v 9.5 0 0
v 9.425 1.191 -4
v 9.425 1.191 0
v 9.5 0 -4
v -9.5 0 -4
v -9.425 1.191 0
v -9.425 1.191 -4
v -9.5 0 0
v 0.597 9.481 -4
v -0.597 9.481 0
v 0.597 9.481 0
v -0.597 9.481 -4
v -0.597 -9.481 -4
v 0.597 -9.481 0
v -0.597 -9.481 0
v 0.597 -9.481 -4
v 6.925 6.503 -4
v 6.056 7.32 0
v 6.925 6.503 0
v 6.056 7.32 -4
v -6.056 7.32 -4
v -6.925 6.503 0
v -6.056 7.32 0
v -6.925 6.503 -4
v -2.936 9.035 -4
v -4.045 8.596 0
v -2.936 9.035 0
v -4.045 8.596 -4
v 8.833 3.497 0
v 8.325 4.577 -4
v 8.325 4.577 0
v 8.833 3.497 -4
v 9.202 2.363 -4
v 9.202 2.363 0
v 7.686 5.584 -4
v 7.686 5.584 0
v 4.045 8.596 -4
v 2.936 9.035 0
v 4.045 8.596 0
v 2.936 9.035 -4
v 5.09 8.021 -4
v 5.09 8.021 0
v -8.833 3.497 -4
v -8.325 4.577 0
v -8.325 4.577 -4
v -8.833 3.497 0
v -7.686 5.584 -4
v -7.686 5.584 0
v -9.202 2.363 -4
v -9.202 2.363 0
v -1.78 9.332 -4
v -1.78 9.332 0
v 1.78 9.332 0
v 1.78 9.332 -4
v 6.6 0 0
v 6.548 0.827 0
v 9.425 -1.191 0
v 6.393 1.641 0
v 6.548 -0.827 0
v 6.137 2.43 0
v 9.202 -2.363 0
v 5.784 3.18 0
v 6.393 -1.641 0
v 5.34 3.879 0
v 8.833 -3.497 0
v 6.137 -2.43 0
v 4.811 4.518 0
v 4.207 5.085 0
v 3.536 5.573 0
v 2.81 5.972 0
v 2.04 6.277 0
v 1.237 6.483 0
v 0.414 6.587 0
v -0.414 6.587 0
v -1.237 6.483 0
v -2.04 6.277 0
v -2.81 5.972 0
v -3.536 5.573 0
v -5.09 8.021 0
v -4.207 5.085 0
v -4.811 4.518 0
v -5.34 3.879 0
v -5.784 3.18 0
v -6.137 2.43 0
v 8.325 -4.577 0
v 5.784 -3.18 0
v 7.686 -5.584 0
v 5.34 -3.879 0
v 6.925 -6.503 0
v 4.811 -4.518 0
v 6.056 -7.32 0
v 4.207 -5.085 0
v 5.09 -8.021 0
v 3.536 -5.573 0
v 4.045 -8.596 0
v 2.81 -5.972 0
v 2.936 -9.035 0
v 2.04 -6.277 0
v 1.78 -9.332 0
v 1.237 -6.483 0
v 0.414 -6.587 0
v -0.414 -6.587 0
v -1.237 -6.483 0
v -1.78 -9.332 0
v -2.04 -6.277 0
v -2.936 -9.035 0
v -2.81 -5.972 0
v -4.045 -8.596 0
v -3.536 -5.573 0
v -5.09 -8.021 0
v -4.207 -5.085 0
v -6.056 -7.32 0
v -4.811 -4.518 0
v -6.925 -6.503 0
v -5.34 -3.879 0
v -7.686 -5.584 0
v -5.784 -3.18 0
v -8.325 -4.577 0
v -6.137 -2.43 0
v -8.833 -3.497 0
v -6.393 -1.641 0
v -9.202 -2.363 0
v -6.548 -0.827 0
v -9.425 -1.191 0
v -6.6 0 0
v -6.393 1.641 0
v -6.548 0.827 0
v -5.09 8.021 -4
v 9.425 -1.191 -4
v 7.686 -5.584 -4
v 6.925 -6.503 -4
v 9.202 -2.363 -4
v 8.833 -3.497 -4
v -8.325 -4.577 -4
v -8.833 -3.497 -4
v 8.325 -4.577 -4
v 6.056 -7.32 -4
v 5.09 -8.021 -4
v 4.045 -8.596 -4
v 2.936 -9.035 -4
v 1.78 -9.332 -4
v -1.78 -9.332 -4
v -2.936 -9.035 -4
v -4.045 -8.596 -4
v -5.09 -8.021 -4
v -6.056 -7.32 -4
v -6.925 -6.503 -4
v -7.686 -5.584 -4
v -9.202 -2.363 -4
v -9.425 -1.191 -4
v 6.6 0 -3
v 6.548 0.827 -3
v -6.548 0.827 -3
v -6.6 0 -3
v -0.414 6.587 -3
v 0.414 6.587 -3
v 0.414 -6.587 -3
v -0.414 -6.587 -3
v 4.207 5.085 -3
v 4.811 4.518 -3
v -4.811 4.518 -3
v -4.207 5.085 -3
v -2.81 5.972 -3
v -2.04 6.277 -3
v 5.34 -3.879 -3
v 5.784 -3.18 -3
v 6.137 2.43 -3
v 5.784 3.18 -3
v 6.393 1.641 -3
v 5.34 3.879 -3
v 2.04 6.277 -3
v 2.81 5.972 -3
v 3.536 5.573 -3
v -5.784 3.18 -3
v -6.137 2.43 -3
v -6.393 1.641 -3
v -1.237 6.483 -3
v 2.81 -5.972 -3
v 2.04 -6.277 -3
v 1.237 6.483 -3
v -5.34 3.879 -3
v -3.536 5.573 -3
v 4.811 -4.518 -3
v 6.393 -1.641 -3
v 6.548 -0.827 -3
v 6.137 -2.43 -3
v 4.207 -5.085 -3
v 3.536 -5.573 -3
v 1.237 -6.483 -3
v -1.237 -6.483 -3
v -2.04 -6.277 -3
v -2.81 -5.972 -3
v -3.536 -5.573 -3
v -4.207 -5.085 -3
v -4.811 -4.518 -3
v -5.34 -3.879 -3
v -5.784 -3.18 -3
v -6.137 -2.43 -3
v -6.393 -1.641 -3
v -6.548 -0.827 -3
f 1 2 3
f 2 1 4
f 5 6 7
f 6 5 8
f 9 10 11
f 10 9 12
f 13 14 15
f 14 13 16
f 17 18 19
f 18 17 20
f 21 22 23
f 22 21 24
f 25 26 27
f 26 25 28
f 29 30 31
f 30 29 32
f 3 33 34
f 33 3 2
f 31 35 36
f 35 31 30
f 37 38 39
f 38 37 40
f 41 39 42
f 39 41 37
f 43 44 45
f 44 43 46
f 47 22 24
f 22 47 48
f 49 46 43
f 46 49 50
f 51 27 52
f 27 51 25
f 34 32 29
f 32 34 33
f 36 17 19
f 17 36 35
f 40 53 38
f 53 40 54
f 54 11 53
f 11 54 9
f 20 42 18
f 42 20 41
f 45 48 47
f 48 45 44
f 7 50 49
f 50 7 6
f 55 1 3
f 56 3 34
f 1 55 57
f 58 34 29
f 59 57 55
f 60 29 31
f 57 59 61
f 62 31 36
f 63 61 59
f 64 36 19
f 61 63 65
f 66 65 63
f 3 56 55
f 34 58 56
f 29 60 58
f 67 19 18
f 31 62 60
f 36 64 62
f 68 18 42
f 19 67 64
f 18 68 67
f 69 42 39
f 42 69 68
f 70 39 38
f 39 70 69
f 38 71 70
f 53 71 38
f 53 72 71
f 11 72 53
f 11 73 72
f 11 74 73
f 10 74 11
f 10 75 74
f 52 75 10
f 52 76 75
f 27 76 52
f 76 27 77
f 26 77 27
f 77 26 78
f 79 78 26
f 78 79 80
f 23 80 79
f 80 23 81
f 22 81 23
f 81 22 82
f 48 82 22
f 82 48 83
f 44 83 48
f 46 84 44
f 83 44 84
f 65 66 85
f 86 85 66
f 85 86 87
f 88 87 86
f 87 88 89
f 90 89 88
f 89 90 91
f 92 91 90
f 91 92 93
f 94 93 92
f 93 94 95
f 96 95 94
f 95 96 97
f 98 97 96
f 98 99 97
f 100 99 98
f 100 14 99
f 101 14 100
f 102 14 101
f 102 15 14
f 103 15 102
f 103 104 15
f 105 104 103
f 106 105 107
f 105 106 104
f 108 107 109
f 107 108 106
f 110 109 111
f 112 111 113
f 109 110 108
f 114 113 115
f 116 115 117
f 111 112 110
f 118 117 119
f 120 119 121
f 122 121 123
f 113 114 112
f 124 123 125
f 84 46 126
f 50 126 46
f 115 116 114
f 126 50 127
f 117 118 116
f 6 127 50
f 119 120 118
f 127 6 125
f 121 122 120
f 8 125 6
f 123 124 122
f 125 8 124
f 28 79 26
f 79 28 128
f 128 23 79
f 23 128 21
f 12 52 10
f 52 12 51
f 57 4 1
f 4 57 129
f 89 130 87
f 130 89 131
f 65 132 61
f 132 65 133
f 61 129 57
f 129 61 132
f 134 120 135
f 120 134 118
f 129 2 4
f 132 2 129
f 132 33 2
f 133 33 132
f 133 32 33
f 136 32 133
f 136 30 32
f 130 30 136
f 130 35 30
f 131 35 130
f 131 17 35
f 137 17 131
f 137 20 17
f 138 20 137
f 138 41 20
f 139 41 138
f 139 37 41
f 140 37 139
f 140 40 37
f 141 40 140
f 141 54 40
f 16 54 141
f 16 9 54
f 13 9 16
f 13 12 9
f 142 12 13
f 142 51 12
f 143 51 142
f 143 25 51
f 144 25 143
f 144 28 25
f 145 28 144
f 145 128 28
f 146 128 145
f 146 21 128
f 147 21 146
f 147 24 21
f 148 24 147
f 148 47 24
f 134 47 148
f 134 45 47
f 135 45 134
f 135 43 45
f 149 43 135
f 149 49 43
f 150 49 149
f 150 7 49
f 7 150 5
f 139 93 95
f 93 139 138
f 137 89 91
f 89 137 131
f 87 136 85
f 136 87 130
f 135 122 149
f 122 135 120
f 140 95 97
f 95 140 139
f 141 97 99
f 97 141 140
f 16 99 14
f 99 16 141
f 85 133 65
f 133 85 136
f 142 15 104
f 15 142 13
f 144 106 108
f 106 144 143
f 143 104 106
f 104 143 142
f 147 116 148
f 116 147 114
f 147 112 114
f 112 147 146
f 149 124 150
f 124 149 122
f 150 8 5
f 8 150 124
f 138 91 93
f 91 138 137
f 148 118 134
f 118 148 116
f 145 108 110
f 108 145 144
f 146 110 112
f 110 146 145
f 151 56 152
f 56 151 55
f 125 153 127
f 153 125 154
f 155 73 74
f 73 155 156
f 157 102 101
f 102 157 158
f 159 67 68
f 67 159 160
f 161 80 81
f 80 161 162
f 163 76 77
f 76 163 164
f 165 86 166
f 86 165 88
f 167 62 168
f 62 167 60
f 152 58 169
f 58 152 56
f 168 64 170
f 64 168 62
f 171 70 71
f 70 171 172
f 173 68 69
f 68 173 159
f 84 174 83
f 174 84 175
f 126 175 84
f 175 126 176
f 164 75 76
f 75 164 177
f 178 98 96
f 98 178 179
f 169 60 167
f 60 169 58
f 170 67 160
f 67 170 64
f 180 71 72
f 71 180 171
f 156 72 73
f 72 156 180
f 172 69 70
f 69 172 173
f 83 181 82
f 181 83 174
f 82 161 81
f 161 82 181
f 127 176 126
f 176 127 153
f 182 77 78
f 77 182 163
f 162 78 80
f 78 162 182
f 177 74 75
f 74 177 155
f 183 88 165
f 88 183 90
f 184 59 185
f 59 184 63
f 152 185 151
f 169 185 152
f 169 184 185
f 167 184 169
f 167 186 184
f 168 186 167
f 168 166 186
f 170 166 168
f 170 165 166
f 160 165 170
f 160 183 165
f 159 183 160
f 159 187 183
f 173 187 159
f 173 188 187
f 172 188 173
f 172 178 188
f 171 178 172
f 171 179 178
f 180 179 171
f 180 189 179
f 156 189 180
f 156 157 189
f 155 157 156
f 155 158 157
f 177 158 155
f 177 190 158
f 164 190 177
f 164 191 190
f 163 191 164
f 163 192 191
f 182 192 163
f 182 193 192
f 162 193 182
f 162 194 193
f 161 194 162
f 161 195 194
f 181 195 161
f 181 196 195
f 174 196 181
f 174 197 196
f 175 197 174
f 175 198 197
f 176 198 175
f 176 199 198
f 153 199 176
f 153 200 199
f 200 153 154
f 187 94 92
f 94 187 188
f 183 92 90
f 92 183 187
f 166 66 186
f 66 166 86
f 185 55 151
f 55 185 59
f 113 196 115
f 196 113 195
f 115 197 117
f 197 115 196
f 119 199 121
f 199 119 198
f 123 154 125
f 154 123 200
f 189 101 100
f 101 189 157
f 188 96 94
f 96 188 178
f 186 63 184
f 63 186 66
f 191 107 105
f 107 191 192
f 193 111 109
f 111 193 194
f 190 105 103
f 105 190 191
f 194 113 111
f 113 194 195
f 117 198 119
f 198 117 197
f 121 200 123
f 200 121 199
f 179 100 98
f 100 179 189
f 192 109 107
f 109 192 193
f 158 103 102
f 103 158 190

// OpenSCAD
$fn = 50;


difference() {
	union() {
		translate(v = [0, 0, -4.0000000000]) {
			cylinder(h = 4, r = 9.5000000000);
		}
	}
	union() {
		#translate(v = [0, 0, -3.0000000000]) {
			cylinder(h = 3, r = 6.6000000000);
		}
	}
}
